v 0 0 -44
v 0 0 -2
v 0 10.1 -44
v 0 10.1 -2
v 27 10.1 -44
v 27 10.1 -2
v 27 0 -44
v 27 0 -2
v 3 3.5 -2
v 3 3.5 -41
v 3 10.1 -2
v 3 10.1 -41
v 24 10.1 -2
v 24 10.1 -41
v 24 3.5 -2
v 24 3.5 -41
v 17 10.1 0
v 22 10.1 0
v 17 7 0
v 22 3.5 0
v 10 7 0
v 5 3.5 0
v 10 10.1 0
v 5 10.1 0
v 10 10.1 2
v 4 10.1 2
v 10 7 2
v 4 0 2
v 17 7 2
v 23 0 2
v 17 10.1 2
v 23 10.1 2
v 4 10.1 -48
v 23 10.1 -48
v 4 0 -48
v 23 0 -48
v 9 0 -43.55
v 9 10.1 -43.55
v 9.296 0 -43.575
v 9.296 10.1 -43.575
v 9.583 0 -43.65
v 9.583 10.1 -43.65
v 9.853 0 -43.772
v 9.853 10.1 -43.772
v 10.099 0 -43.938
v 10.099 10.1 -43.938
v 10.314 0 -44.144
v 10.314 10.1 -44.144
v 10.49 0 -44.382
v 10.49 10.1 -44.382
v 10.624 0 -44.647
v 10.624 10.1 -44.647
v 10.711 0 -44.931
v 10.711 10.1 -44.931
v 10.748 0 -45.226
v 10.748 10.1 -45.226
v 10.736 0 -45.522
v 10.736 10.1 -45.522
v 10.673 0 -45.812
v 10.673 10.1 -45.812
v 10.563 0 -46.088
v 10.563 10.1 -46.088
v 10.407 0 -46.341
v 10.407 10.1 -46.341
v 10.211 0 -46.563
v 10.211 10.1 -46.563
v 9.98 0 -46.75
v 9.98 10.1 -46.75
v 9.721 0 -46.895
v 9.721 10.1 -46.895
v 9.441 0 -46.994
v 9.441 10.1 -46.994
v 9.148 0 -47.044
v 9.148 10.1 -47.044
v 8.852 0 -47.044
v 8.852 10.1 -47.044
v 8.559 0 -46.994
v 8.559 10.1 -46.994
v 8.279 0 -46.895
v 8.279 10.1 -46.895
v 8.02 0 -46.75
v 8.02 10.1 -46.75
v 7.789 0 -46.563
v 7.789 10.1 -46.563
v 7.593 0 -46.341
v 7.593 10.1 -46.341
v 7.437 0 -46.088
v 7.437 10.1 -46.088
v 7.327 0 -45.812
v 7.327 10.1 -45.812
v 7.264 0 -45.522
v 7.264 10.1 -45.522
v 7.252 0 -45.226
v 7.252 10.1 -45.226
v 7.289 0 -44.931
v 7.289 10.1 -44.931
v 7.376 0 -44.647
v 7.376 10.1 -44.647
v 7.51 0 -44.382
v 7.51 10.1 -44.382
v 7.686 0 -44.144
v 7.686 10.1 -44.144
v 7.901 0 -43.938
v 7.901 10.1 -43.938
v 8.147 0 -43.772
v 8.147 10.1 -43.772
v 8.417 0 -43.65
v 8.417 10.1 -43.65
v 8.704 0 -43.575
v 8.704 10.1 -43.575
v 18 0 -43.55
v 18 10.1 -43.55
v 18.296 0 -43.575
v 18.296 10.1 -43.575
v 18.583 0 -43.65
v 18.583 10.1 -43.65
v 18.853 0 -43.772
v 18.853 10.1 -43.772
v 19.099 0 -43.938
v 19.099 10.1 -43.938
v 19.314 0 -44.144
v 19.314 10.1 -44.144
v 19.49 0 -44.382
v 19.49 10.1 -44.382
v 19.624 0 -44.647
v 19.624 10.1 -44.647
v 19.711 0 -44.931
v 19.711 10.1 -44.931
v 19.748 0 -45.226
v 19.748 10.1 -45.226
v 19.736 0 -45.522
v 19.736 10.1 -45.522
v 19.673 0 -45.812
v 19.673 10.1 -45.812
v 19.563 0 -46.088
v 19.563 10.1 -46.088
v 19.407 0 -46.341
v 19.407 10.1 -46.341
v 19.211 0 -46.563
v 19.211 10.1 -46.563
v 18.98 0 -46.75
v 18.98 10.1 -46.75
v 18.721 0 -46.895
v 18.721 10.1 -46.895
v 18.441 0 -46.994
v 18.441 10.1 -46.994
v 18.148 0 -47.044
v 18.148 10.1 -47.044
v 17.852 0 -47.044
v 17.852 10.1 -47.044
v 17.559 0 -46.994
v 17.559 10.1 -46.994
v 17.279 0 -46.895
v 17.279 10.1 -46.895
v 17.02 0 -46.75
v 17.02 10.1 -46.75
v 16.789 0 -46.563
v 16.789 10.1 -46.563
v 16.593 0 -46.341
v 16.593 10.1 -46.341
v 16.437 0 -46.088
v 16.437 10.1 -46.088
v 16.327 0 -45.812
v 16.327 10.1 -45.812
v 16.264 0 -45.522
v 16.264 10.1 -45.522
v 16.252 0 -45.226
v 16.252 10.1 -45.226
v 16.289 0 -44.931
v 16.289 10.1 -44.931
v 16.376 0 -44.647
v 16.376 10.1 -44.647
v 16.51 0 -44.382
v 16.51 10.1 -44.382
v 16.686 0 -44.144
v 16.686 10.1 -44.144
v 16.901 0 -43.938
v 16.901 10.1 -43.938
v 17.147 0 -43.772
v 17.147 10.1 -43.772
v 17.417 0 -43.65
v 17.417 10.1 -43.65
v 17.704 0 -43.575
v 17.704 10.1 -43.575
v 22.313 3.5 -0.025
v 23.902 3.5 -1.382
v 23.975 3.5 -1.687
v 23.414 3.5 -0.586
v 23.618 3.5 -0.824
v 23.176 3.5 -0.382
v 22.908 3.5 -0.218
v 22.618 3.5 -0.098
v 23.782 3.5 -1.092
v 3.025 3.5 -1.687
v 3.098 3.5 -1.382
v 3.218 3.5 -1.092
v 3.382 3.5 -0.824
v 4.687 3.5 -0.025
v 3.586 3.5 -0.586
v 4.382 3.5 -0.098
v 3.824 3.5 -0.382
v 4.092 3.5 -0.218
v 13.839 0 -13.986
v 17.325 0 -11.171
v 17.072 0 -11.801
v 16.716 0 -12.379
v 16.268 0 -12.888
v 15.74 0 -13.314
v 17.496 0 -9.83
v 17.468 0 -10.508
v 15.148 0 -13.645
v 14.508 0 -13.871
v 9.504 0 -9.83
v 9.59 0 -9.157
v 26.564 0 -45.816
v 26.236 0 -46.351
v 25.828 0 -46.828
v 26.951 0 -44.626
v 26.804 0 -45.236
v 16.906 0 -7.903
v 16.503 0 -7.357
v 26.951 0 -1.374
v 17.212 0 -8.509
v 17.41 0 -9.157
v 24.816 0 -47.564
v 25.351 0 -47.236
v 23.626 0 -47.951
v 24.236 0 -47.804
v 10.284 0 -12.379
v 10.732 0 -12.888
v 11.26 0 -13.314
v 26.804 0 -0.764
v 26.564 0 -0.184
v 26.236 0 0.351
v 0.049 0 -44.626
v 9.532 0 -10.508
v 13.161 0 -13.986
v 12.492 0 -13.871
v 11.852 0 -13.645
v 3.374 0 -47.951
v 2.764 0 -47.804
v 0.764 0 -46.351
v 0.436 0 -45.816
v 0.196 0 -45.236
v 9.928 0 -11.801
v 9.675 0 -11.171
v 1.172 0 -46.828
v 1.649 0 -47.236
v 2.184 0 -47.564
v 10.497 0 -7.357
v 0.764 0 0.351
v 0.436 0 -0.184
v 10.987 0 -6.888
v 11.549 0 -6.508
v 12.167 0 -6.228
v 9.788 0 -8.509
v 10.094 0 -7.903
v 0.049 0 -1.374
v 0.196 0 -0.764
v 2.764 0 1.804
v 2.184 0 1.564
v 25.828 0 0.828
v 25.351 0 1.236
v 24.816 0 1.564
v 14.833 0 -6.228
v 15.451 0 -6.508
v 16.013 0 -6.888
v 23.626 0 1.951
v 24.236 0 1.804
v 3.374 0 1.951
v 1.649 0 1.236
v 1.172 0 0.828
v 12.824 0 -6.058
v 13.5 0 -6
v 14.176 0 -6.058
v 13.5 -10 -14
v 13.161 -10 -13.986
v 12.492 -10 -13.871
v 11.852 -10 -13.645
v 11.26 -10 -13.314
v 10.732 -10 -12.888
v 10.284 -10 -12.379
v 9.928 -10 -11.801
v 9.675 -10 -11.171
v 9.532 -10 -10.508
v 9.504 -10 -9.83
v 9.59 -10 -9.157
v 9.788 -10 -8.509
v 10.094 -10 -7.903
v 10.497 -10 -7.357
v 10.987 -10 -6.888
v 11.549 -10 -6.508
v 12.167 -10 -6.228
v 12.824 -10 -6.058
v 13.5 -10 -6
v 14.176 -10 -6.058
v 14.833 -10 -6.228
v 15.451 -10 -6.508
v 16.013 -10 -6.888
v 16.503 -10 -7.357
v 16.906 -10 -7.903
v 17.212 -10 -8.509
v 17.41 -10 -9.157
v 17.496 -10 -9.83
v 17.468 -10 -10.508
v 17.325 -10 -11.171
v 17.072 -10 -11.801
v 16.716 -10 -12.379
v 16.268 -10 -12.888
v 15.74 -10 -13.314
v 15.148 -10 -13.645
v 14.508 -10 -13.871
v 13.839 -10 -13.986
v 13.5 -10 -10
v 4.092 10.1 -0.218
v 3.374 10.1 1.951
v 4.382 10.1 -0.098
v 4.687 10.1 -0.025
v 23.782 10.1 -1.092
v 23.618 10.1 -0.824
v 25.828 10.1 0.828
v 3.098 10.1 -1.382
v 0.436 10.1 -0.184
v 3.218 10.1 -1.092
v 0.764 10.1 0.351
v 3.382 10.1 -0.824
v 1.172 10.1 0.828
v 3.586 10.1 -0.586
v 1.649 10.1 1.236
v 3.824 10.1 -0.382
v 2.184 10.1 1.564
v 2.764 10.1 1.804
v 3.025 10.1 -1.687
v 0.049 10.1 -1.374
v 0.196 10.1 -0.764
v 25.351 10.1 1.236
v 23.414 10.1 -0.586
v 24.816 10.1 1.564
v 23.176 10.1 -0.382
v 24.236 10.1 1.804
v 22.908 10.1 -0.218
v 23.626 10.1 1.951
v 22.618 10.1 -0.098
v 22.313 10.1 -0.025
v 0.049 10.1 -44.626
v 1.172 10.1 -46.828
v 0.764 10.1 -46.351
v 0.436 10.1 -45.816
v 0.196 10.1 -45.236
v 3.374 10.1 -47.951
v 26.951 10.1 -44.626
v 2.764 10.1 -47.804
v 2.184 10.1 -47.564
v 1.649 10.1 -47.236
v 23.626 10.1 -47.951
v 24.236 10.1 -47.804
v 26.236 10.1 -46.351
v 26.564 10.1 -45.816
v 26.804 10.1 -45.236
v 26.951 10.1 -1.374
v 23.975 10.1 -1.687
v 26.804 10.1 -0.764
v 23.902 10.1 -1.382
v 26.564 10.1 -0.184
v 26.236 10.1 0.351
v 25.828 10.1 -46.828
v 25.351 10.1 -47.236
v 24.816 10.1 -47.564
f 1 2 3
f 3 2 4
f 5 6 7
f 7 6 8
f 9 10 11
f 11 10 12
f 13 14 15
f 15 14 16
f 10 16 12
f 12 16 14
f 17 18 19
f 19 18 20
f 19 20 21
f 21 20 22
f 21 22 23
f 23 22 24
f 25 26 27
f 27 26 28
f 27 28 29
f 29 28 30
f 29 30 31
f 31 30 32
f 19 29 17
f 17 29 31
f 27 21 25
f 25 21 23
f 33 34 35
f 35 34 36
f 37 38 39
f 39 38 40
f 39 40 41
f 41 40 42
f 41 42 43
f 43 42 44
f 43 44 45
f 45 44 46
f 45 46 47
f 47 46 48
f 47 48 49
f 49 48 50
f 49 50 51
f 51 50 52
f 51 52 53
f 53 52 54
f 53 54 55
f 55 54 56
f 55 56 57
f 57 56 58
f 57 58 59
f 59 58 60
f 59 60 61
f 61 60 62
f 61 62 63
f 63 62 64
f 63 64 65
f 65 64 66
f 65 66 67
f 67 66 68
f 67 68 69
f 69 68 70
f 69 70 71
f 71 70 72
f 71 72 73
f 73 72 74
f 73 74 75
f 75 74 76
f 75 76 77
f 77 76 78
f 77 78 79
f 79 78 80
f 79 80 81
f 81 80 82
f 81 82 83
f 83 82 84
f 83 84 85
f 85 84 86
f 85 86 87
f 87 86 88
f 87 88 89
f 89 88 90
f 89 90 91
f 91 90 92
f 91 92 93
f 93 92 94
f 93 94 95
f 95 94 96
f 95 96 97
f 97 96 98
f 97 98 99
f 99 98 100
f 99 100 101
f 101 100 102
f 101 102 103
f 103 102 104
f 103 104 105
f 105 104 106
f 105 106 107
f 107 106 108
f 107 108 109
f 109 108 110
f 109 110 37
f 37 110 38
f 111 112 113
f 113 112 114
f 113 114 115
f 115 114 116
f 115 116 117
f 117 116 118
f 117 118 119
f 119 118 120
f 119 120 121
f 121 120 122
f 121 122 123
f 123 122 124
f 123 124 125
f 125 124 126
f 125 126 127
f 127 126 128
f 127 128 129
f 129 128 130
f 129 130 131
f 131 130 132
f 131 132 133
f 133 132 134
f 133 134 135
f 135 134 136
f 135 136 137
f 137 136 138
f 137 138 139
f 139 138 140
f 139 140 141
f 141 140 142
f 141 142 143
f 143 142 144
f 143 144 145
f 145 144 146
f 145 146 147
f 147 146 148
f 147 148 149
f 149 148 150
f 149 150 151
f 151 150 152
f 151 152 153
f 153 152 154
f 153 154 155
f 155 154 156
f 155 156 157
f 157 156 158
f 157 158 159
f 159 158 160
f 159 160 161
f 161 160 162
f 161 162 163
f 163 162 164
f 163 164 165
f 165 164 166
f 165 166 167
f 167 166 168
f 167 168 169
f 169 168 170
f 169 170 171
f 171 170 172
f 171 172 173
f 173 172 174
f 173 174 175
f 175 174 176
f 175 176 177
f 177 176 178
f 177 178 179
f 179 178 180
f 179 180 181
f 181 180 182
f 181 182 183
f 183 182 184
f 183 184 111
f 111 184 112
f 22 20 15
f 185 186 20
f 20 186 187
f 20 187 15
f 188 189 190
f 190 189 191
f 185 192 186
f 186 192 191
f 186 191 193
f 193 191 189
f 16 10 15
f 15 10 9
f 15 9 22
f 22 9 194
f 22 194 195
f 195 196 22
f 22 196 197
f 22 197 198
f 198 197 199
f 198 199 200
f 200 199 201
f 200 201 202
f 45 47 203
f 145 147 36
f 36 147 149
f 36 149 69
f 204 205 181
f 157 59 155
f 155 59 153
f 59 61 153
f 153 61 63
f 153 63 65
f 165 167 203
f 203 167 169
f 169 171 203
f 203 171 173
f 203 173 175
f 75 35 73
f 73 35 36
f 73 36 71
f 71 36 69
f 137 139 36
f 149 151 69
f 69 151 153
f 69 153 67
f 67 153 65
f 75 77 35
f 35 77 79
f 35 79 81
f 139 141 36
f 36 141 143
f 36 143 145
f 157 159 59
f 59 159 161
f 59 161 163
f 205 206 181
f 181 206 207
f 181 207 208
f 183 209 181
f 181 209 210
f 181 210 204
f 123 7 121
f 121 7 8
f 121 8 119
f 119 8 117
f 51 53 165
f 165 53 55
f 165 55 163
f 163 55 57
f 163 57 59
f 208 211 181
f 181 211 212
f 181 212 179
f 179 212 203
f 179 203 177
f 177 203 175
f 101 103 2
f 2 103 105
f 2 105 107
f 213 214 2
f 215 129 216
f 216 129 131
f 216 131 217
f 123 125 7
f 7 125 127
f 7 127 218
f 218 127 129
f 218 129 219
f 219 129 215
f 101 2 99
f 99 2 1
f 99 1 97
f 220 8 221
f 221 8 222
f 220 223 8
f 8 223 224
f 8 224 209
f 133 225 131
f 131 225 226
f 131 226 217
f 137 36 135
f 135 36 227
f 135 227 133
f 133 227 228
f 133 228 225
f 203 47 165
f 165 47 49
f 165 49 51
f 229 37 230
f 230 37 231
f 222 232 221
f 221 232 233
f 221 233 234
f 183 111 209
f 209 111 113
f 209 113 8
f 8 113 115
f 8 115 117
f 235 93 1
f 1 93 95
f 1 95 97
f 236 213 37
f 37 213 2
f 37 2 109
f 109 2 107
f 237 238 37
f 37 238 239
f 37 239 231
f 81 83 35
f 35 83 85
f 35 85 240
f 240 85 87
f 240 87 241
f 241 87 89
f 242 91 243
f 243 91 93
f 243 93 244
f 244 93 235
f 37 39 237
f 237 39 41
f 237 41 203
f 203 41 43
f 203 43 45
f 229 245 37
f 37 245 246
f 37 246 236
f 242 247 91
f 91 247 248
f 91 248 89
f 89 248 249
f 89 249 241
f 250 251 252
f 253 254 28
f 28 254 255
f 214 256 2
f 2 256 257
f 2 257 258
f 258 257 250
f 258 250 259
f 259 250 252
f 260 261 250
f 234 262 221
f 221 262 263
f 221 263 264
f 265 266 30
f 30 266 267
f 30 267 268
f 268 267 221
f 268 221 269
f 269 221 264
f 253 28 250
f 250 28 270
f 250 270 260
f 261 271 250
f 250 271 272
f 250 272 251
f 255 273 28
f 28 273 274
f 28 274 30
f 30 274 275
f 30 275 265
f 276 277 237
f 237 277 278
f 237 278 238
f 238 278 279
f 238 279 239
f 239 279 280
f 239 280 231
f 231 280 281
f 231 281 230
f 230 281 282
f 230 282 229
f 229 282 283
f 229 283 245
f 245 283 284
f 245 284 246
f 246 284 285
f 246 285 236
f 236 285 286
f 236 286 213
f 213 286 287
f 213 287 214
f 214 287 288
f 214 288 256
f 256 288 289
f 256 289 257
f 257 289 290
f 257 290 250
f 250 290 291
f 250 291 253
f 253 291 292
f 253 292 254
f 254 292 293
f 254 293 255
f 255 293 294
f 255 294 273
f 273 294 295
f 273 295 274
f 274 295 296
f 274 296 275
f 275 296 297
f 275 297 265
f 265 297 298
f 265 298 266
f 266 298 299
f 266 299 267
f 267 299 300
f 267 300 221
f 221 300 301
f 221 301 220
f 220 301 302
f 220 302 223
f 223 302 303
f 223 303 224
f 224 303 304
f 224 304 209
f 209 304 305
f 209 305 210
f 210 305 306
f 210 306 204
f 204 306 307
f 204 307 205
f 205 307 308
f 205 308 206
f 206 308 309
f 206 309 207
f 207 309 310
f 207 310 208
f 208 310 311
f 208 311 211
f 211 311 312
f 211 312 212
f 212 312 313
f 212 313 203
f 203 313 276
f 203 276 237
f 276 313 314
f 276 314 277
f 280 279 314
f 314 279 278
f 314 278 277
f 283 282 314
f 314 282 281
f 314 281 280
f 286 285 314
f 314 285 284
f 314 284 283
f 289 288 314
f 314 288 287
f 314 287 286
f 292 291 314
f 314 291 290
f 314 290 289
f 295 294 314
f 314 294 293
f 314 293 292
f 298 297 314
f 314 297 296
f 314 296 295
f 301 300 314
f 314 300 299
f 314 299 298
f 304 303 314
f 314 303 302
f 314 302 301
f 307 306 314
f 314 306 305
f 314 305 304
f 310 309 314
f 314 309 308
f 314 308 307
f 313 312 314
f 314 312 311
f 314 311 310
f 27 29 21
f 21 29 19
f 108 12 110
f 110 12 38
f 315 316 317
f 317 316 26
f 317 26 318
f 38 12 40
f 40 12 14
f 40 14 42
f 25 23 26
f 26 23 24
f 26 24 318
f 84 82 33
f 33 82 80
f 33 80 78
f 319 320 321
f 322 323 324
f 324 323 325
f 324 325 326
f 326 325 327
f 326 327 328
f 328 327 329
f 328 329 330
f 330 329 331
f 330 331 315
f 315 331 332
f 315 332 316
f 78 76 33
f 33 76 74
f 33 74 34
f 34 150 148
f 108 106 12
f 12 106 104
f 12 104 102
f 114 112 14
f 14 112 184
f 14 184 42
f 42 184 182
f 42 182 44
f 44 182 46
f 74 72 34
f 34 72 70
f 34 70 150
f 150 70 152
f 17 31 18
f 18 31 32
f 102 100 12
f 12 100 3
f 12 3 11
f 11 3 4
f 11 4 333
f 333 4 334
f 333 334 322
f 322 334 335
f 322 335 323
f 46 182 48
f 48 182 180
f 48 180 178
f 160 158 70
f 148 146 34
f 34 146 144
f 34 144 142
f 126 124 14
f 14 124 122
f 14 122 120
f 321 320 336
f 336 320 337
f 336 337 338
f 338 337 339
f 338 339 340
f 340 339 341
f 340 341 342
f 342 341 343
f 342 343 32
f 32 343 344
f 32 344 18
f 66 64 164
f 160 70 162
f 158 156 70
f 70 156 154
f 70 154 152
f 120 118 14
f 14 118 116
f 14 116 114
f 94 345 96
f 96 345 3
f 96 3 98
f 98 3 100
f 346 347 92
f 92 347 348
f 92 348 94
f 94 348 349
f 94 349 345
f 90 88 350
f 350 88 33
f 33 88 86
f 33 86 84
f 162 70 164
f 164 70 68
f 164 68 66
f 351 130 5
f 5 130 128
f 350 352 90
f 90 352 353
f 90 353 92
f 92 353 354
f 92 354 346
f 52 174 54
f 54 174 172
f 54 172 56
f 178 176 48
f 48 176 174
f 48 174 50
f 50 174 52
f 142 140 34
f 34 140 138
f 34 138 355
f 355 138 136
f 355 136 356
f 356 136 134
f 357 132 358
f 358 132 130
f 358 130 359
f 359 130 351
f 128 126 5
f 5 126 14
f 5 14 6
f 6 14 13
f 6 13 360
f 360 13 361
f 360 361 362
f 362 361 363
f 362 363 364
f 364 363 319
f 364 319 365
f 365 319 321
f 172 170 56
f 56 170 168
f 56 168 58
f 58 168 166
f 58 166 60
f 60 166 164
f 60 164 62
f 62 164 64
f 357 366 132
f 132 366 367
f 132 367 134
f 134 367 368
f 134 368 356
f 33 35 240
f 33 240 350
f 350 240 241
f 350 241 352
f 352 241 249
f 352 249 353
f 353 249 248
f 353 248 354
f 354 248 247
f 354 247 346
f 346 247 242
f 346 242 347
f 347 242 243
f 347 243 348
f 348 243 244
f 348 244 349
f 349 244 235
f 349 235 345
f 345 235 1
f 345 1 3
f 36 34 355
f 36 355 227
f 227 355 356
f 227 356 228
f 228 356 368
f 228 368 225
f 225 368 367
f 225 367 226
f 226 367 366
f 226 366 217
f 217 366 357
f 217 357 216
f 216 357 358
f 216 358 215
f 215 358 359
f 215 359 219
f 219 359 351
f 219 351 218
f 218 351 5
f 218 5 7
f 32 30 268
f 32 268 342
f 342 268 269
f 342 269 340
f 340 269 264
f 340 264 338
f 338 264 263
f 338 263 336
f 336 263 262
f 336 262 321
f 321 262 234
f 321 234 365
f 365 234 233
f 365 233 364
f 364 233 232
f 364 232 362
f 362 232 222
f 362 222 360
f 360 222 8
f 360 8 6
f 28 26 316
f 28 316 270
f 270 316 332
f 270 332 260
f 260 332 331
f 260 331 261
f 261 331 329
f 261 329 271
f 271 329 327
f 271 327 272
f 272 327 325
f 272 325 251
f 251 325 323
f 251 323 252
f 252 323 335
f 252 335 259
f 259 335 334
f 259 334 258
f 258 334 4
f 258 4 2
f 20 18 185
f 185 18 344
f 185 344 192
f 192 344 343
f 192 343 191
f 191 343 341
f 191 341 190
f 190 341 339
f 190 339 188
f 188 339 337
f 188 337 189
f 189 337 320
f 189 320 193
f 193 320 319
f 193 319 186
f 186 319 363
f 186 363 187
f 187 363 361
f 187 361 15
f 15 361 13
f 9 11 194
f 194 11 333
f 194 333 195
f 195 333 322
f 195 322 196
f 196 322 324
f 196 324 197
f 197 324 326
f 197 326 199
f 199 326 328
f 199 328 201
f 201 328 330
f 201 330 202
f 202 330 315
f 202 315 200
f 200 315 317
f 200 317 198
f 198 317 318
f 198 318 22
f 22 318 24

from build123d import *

# Parameters (mm, degrees)
SKETCH1_W           = 27
SKETCH1_H           = 41
BOSS_EXTRUDE1_DEPTH = 3.5
SKETCH2_W           = 3
SKETCH2_H           = 41
BOSS_EXTRUDE2_DEPTH = 7.5
SKETCH3_R           = 4
BOSS_EXTRUDE3_DEPTH = 10
SKETCH4_W           = 27
SKETCH4_H           = 11
BOSS_EXTRUDE4_DEPTH = 2
SKETCH5_W           = 27
SKETCH5_H           = 11
BOSS_EXTRUDE5_DEPTH = 2
CUT_EXTRUDE1_REACH  = 55.619
SKETCH6_W           = 7
SKETCH6_H           = 4
SKETCH7_W           = 27
SKETCH7_H           = 11
BOSS_EXTRUDE6_DEPTH = 5
SKETCH8_R           = 1.75
CUT_EXTRUDE2_DEPTH  = 59.940648113
SKETCH9_W           = 27
SKETCH9_H           = 50
CUT_EXTRUDE3_DEPTH  = 0.9
FILLET1_R           = 4
FILLET2_R           = 2


with BuildPart() as part:
    # Sketch1 → Boss-Extrude1 (new body)
    with BuildSketch(Plane(origin=(0, 0, 0), x_dir=(1, 0, 0), z_dir=(0, 1, 0))):
        with Locations((13.5, 20.5)):
            Rectangle(SKETCH1_W, SKETCH1_H)
    extrude(amount=BOSS_EXTRUDE1_DEPTH)

    # Sketch2 → Boss-Extrude2 (add)
    with BuildSketch(Plane(origin=(0, 3.5, 0), x_dir=(1, 0, 0), z_dir=(0, 1, 0))):
        with Locations((1.5, 20.5)):
            Rectangle(SKETCH2_W, SKETCH2_H)
        with Locations((25.5, 20.5)):
            Rectangle(SKETCH2_W, SKETCH2_H)
    extrude(amount=BOSS_EXTRUDE2_DEPTH)

    # Sketch3 → Boss-Extrude3 (add)
    with BuildSketch(Plane(origin=(0, 0, 0), x_dir=(-1, 0, 0), z_dir=(0, -1, 0))):
        with Locations(Location((-13.5, 10, 0), (0, 0, 270))):
            Circle(SKETCH3_R)
    extrude(amount=BOSS_EXTRUDE3_DEPTH)

    # Sketch4 → Boss-Extrude4 (add)
    with BuildSketch(Plane(origin=(0, 0, -41), x_dir=(-1, 0, 0), z_dir=(0, 0, -1))):
        with Locations((-13.5, 5.5)):
            Rectangle(SKETCH4_W, SKETCH4_H)
    extrude(amount=BOSS_EXTRUDE4_DEPTH)

    # Sketch5 → Boss-Extrude5 (add)
    with BuildSketch(Plane.XY):
        with Locations((13.5, 5.5)):
            Rectangle(SKETCH5_W, SKETCH5_H)
    extrude(amount=BOSS_EXTRUDE5_DEPTH)

    # Sketch6 → Cut-Extrude1 (cut, up to next)
    with BuildSketch(Plane.XY.offset(2), mode=Mode.PRIVATE) as cut_extrude1_sk1:
        with Locations((13.5, 9)):
            Rectangle(SKETCH6_W, SKETCH6_H)
    cut_extrude1_tool1 = extrude(cut_extrude1_sk1.sketch, amount=-CUT_EXTRUDE1_REACH, mode=Mode.PRIVATE) & part.part
    add(cut_extrude1_tool1.solids().sort_by_distance((13.5, 9, 2))[0], mode=Mode.SUBTRACT)

    # Sketch7 → Boss-Extrude6 (add)
    with BuildSketch(Plane(origin=(0, 0, -43), x_dir=(-1, 0, 0), z_dir=(0, 0, -1))):
        with Locations((-13.5, 5.5)):
            Rectangle(SKETCH7_W, SKETCH7_H)
    extrude(amount=BOSS_EXTRUDE6_DEPTH)

    # Sketch8 → Cut-Extrude2 (cut, through all)
    with BuildSketch(Plane(origin=(0, 11, 0), x_dir=(1, 0, 0), z_dir=(0, 1, 0))):
        with Locations(Location((18, 45.3, 0), (0, 0, 270))):
            Circle(SKETCH8_R)
        with Locations(Location((9, 45.3, 0), (0, 0, 270))):
            Circle(SKETCH8_R)
    extrude(amount=-CUT_EXTRUDE2_DEPTH, mode=Mode.SUBTRACT)

    # Sketch9 → Cut-Extrude3 (cut)
    with BuildSketch(Plane(origin=(0, 11, 0), x_dir=(1, 0, 0), z_dir=(0, 1, 0))):
        with Locations((13.5, 23)):
            Rectangle(SKETCH9_W, SKETCH9_H)
    extrude(amount=-CUT_EXTRUDE3_DEPTH, mode=Mode.SUBTRACT)

    # Fillet1
    fillet1_edges = [part.edges().sort_by_distance(p)[0] for p in [
        (27, 5.05, -48),
        (0, 5.05, 2),
        (27, 5.05, 2),
        (0, 5.05, -48),
    ]]
    fillet(fillet1_edges, radius=FILLET1_R)

    # Fillet2
    fillet2_edges = [part.edges().sort_by_distance(p)[0] for p in [
        (24, 6.8, 0),
        (3, 6.8, 0),
    ]]
    fillet(fillet2_edges, radius=FILLET2_R)


solid = part.part
